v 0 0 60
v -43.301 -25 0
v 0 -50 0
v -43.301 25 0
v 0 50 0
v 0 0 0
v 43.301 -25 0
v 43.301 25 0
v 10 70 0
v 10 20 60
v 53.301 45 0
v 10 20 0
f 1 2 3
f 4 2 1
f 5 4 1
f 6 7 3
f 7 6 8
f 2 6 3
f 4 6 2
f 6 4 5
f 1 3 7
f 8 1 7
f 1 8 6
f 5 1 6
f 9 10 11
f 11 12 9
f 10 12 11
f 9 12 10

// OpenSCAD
$fa = 1;
$fs = 0.4;


// lets calculate our values in mm
// we use a cone as the basic shape, so lets call it radius
radius_mm=50;
height_mm=60;

// we'd like to print with a gap
gap_mm=10;


module hex_pyramid(radius, height) {
    rotate([0,0,30])
        cylinder(h=height,r1=radius,r2=0,$fn=6);
}

module hex_slice(base_length, height) {
    epsilon=.1;
    linear_extrude(height = height + 2*epsilon)
        translate([0,0,-epsilon])
            polygon([[0,0],[0,base_length],[sin(60)*base_length,cos(60)*base_length]]);
}



// pyramid with quarter and slice removed
difference() {
    hex_pyramid(radius_mm, height_mm);
    hex_slice(radius_mm, height_mm);
};

// slice, separated by gap
translate([gap_mm,gap_mm*2,0])
intersection() {
    hex_pyramid(radius_mm, height_mm);
    hex_slice(radius_mm, height_mm);
};
